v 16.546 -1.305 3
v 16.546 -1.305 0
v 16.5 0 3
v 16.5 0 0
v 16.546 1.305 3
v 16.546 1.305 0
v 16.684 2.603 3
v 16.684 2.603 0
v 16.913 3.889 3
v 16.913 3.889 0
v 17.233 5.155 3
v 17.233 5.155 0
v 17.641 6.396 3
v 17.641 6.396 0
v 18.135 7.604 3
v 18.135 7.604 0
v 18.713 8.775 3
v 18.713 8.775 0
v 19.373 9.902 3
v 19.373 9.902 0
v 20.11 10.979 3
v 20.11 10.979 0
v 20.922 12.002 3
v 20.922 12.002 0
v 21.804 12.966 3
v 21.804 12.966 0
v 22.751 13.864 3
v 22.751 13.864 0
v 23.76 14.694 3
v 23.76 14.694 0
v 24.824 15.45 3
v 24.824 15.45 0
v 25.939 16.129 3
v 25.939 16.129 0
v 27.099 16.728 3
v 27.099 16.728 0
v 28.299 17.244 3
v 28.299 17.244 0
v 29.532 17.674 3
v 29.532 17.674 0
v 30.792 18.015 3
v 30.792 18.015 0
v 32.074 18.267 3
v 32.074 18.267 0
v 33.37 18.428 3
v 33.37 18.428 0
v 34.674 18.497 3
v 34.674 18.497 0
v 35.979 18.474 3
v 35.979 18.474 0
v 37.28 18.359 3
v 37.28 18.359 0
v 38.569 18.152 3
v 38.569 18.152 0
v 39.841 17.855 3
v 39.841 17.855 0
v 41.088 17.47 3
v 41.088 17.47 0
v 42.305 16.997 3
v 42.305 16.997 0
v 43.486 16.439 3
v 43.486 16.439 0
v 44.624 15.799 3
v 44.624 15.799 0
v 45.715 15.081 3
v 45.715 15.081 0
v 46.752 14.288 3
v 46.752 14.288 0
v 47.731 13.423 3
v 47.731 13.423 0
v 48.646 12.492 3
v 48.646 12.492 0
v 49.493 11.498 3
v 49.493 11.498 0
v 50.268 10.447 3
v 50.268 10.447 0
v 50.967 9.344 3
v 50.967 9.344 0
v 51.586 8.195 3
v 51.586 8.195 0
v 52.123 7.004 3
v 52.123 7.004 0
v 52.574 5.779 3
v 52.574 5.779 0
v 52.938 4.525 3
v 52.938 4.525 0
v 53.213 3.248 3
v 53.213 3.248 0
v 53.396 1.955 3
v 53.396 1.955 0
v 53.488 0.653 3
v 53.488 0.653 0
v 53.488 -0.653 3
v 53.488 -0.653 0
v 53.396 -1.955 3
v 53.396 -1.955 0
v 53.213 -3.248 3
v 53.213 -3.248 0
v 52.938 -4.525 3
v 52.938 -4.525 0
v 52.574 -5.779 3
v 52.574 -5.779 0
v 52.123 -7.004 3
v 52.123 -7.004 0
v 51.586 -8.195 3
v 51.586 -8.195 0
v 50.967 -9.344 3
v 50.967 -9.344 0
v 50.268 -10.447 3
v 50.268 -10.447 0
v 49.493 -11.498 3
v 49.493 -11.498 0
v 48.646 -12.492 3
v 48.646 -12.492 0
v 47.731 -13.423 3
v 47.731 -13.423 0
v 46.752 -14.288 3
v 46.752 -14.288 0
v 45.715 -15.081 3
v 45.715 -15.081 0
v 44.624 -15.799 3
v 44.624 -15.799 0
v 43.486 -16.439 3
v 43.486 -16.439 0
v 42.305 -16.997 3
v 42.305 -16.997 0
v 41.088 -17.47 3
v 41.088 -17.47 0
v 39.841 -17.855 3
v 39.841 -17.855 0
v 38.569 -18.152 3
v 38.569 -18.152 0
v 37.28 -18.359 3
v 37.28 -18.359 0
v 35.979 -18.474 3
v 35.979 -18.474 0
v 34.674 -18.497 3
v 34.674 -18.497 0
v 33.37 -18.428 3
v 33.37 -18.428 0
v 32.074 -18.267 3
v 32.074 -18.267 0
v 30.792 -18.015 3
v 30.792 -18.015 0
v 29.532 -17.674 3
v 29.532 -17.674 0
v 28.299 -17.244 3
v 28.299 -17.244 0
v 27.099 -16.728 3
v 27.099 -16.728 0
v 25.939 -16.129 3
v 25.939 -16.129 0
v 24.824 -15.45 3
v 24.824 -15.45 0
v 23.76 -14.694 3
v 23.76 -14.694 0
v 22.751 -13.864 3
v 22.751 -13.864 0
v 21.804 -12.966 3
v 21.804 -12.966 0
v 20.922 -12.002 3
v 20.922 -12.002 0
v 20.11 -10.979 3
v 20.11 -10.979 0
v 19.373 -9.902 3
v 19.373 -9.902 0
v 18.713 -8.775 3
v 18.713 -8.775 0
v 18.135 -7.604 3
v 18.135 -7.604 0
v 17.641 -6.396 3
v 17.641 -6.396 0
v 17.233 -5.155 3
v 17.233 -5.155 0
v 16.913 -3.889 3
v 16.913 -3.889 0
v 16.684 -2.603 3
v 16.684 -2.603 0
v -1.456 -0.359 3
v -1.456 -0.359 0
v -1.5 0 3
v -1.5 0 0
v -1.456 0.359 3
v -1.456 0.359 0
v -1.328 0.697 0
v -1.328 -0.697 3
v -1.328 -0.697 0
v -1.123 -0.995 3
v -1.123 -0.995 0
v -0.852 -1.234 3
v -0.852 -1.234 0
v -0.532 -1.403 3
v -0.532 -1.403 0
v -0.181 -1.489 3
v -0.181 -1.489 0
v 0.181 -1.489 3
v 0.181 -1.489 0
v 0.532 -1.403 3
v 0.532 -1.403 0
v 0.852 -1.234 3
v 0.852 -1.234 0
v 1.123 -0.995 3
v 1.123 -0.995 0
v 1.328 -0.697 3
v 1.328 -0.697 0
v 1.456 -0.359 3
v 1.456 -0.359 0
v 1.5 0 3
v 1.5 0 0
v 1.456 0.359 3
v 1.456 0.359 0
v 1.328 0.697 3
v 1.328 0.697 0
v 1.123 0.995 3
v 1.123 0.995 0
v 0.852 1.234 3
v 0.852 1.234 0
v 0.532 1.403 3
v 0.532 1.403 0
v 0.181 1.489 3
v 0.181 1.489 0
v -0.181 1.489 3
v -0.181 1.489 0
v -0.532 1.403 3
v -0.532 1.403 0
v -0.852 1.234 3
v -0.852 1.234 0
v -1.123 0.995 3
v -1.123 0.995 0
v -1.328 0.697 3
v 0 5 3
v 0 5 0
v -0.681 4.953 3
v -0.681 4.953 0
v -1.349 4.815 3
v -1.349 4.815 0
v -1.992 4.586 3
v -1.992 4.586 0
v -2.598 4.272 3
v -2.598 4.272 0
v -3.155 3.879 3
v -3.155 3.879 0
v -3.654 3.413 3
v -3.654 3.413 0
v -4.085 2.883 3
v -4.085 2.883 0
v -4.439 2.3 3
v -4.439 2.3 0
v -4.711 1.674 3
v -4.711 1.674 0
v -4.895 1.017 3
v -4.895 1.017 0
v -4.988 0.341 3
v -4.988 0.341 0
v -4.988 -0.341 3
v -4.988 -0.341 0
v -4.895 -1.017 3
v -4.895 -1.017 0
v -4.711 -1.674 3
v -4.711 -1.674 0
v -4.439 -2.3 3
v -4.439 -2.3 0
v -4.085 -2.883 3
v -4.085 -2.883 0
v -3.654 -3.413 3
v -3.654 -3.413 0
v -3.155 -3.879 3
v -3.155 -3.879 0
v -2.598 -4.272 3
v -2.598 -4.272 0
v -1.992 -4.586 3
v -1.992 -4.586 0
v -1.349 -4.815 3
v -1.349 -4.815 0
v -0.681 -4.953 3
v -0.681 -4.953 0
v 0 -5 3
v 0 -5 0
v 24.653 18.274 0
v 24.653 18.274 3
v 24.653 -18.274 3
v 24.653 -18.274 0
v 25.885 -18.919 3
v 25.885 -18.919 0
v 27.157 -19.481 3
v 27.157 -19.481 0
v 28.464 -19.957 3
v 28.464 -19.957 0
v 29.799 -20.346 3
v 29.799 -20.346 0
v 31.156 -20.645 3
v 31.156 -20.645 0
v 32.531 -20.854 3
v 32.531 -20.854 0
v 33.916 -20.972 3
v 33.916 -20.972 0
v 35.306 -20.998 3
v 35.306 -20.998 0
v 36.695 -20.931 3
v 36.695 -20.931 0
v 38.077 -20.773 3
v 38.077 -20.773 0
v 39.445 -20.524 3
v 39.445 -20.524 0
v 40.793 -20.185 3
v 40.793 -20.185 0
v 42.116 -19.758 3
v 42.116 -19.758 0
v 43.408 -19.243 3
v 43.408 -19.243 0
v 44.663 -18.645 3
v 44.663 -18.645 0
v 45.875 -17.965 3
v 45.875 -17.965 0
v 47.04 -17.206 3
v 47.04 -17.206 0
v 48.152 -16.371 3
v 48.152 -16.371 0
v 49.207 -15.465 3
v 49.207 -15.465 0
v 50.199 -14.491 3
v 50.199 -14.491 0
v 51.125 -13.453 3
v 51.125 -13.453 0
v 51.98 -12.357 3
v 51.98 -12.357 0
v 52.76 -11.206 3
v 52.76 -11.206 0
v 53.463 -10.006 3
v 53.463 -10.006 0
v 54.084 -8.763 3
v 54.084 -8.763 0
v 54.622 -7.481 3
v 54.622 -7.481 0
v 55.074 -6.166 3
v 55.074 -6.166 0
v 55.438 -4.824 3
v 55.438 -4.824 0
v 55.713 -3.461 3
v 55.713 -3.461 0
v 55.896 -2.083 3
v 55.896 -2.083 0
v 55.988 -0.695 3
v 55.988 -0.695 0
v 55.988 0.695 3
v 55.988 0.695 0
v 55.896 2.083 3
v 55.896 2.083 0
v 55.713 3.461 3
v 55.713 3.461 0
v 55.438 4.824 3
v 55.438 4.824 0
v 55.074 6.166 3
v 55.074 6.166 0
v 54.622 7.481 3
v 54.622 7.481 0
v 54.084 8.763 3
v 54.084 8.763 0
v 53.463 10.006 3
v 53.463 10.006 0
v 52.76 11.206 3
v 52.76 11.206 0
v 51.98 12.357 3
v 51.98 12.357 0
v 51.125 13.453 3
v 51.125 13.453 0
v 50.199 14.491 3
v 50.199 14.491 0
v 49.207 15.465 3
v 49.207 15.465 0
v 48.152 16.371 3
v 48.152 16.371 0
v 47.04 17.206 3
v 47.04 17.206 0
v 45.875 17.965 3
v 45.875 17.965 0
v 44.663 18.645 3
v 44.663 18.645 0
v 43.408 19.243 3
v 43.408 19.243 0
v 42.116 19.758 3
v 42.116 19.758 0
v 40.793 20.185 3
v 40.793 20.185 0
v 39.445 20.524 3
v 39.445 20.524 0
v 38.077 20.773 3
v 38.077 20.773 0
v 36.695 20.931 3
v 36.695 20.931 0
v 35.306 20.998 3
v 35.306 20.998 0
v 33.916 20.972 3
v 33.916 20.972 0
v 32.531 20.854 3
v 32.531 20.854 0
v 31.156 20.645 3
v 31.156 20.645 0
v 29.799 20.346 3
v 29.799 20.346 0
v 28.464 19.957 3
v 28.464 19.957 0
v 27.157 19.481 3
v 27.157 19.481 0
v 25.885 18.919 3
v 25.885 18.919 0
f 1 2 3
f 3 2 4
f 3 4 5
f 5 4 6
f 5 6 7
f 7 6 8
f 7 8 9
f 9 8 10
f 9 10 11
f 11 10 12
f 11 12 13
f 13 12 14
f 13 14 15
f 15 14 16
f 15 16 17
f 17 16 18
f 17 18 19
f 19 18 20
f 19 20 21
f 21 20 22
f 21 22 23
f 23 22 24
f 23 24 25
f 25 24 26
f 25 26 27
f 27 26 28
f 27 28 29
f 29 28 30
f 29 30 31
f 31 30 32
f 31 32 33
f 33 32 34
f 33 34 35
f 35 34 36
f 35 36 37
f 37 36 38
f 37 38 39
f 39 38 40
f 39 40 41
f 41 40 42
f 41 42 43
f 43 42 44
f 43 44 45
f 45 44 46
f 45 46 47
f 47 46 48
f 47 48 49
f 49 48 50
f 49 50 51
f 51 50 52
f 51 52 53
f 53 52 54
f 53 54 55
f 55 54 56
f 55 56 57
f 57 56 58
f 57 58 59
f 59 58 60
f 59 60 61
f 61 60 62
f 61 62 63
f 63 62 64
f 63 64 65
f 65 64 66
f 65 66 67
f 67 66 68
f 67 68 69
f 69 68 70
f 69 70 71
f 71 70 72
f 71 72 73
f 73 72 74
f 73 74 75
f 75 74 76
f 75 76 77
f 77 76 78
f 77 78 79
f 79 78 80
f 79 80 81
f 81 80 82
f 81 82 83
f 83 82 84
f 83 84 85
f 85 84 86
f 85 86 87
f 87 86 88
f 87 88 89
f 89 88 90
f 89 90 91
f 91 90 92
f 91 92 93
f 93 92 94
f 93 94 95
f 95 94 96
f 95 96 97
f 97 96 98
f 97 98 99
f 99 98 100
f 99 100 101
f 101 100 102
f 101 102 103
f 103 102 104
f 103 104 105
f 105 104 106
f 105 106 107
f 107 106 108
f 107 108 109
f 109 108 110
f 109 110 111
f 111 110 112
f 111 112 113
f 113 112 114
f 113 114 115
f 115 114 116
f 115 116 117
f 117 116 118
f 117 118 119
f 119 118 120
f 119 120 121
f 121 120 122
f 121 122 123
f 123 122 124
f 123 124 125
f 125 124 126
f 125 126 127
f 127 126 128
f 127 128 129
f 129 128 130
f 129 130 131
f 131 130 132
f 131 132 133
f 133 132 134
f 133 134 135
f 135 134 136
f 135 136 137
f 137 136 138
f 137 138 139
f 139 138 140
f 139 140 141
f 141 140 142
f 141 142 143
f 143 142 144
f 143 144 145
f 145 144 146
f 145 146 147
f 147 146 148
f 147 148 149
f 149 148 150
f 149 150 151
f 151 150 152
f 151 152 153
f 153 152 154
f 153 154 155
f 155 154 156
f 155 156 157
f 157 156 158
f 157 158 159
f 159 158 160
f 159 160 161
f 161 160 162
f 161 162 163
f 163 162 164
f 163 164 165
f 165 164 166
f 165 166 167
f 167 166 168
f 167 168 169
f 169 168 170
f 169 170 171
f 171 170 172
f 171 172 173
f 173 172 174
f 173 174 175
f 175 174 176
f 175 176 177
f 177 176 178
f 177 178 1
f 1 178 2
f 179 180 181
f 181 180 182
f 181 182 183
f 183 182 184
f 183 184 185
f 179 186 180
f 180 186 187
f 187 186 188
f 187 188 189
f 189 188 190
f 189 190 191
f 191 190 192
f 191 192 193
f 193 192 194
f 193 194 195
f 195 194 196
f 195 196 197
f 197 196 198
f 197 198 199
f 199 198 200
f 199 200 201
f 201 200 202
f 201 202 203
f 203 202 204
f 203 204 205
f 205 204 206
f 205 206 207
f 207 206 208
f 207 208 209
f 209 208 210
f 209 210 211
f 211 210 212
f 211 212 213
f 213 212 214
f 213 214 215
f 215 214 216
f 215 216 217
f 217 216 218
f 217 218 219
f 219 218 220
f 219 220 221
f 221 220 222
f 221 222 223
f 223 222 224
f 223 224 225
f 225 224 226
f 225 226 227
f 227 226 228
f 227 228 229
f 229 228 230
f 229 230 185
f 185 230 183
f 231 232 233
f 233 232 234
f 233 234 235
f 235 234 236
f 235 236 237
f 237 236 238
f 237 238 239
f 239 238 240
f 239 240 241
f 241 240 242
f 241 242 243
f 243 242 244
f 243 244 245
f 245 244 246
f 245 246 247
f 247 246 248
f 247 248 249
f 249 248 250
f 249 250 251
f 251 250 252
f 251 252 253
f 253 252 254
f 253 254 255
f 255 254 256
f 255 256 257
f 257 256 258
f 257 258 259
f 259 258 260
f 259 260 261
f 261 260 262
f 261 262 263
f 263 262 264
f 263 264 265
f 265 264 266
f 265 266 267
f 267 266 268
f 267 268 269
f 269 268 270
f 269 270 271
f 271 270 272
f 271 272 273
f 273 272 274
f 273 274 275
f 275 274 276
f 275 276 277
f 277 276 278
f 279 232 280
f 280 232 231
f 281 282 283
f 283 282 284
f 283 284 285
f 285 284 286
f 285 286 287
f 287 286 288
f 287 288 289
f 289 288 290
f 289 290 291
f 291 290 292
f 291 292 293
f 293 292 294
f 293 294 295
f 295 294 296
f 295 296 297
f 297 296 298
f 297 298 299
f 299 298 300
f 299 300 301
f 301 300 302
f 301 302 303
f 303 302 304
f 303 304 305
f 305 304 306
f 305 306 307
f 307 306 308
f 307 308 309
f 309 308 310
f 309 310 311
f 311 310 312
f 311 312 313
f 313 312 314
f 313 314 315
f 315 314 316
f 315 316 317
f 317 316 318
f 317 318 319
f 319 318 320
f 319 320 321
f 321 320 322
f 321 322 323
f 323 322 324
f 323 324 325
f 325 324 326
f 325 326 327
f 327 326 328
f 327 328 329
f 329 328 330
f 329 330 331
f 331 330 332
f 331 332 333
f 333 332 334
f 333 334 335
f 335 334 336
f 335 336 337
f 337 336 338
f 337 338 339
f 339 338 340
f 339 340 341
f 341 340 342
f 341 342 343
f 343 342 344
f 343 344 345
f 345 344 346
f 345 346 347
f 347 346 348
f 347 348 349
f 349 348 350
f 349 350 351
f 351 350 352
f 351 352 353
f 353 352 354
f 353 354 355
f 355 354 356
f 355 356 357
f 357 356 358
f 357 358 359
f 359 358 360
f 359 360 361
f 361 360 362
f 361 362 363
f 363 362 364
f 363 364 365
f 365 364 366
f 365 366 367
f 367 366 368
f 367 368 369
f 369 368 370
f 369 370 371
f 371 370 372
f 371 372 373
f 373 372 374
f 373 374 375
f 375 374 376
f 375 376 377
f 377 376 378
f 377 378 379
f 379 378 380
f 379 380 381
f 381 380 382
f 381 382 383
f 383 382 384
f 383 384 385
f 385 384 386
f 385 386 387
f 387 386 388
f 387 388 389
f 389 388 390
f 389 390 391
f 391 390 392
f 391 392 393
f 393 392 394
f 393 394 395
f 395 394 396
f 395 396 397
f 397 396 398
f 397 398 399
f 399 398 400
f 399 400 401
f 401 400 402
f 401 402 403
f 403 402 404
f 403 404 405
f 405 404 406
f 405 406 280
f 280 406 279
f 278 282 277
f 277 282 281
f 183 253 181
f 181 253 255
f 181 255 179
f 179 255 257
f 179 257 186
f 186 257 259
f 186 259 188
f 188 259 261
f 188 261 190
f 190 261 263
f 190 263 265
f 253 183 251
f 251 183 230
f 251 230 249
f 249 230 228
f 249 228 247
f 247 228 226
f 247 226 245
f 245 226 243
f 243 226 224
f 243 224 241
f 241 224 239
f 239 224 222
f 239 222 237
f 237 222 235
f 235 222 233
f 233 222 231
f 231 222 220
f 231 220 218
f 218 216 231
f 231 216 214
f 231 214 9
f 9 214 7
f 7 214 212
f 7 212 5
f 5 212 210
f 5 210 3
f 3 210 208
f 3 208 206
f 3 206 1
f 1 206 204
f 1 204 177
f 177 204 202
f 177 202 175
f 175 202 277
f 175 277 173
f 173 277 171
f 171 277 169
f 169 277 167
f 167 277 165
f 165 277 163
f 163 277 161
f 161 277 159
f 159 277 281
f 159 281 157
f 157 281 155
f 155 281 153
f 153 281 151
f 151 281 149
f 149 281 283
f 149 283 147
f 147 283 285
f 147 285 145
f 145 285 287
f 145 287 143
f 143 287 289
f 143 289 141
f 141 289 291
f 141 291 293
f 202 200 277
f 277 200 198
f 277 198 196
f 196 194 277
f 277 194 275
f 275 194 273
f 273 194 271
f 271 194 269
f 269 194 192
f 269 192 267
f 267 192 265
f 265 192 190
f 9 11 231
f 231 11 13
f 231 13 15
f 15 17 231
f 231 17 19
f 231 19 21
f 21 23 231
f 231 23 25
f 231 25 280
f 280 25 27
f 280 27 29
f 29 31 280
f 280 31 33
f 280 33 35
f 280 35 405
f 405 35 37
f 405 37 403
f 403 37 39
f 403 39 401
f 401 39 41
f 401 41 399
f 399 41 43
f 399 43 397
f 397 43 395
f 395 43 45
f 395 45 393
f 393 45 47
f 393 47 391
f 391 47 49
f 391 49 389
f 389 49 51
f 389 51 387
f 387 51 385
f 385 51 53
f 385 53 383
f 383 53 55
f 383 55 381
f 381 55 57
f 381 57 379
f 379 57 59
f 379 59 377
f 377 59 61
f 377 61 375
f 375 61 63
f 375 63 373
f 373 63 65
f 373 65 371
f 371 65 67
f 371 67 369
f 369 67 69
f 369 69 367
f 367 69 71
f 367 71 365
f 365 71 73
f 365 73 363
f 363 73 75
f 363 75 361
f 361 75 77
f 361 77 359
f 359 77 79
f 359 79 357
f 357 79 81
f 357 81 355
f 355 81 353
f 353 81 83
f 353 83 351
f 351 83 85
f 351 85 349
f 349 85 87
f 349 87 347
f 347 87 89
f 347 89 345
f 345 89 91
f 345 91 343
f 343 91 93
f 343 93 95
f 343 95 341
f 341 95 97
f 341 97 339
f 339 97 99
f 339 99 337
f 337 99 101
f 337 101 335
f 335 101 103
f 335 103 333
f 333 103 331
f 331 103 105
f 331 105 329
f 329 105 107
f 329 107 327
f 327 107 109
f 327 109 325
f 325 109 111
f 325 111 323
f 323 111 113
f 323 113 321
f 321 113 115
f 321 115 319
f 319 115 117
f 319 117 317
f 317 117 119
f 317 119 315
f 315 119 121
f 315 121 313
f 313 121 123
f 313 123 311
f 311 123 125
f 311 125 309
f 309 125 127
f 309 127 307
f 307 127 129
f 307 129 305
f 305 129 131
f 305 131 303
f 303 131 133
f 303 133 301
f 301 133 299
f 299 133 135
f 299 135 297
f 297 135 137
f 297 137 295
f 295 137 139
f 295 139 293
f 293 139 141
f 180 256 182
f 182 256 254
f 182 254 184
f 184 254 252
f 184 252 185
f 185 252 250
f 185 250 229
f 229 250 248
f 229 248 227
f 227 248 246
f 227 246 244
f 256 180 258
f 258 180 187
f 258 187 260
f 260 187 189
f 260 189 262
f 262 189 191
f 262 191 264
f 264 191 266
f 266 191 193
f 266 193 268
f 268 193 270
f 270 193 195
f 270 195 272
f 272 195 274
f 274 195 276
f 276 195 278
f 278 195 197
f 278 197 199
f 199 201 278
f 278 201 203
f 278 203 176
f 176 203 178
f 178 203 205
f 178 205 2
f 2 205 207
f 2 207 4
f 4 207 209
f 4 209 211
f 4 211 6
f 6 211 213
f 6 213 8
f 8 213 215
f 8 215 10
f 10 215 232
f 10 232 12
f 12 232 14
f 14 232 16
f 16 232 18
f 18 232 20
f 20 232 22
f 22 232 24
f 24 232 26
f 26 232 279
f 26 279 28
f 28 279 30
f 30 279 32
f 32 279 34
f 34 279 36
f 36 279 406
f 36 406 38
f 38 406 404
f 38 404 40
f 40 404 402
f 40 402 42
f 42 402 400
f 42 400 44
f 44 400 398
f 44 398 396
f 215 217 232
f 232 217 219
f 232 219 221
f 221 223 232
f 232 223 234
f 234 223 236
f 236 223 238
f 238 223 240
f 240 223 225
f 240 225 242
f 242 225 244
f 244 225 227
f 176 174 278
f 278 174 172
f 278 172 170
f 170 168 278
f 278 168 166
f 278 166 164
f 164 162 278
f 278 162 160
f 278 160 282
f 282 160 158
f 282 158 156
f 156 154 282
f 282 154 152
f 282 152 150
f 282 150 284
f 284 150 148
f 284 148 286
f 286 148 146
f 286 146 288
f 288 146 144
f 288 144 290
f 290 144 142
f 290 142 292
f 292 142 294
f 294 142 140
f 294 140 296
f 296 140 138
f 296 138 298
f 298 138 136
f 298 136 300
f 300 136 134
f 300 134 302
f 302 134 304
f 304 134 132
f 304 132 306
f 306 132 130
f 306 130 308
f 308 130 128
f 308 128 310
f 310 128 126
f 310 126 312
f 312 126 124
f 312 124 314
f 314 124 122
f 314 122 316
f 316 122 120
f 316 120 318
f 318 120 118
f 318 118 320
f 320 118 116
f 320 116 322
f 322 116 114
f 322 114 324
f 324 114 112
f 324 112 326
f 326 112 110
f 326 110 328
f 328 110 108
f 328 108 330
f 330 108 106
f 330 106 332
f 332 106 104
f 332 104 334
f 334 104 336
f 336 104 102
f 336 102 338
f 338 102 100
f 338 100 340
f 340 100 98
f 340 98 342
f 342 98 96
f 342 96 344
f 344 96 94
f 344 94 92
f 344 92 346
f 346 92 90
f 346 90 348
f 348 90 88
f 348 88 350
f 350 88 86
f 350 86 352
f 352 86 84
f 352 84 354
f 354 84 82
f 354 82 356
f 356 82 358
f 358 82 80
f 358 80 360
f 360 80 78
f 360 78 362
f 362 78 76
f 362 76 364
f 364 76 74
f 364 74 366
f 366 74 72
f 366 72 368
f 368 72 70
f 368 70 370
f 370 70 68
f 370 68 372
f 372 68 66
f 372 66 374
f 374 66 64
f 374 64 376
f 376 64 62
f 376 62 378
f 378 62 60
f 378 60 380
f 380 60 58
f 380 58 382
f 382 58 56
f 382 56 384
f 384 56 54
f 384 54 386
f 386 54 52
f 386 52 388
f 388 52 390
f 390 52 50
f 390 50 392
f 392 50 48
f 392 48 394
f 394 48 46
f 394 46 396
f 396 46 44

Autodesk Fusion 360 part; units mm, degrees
sketch "Sketch1" plane through (0, 0, 0) normal (0, 0, 1) x (1, 0, 0)
  circle A0 centre (0, 0) radius 1.5
  circle A1 centre (35, 0) radius 18.5
  circle A2 centre (0, 0) radius 5
  circle A3 centre (35, 0) radius 21
  line L0 (0, -5) -> (24.6535, -18.2743)
  line L1 (0, 5) -> (24.6535, 18.2743)
  dimension "d1" = 3
  dimension "d2" = 37
  dimension "d3" = 35
  dimension "d4" = 10
  dimension "d7" = 42
  dimension "d8" = 28
  dimension "d9" = 28
extrude "Extrude1" add sketch "Sketch1" along normal blind 3
